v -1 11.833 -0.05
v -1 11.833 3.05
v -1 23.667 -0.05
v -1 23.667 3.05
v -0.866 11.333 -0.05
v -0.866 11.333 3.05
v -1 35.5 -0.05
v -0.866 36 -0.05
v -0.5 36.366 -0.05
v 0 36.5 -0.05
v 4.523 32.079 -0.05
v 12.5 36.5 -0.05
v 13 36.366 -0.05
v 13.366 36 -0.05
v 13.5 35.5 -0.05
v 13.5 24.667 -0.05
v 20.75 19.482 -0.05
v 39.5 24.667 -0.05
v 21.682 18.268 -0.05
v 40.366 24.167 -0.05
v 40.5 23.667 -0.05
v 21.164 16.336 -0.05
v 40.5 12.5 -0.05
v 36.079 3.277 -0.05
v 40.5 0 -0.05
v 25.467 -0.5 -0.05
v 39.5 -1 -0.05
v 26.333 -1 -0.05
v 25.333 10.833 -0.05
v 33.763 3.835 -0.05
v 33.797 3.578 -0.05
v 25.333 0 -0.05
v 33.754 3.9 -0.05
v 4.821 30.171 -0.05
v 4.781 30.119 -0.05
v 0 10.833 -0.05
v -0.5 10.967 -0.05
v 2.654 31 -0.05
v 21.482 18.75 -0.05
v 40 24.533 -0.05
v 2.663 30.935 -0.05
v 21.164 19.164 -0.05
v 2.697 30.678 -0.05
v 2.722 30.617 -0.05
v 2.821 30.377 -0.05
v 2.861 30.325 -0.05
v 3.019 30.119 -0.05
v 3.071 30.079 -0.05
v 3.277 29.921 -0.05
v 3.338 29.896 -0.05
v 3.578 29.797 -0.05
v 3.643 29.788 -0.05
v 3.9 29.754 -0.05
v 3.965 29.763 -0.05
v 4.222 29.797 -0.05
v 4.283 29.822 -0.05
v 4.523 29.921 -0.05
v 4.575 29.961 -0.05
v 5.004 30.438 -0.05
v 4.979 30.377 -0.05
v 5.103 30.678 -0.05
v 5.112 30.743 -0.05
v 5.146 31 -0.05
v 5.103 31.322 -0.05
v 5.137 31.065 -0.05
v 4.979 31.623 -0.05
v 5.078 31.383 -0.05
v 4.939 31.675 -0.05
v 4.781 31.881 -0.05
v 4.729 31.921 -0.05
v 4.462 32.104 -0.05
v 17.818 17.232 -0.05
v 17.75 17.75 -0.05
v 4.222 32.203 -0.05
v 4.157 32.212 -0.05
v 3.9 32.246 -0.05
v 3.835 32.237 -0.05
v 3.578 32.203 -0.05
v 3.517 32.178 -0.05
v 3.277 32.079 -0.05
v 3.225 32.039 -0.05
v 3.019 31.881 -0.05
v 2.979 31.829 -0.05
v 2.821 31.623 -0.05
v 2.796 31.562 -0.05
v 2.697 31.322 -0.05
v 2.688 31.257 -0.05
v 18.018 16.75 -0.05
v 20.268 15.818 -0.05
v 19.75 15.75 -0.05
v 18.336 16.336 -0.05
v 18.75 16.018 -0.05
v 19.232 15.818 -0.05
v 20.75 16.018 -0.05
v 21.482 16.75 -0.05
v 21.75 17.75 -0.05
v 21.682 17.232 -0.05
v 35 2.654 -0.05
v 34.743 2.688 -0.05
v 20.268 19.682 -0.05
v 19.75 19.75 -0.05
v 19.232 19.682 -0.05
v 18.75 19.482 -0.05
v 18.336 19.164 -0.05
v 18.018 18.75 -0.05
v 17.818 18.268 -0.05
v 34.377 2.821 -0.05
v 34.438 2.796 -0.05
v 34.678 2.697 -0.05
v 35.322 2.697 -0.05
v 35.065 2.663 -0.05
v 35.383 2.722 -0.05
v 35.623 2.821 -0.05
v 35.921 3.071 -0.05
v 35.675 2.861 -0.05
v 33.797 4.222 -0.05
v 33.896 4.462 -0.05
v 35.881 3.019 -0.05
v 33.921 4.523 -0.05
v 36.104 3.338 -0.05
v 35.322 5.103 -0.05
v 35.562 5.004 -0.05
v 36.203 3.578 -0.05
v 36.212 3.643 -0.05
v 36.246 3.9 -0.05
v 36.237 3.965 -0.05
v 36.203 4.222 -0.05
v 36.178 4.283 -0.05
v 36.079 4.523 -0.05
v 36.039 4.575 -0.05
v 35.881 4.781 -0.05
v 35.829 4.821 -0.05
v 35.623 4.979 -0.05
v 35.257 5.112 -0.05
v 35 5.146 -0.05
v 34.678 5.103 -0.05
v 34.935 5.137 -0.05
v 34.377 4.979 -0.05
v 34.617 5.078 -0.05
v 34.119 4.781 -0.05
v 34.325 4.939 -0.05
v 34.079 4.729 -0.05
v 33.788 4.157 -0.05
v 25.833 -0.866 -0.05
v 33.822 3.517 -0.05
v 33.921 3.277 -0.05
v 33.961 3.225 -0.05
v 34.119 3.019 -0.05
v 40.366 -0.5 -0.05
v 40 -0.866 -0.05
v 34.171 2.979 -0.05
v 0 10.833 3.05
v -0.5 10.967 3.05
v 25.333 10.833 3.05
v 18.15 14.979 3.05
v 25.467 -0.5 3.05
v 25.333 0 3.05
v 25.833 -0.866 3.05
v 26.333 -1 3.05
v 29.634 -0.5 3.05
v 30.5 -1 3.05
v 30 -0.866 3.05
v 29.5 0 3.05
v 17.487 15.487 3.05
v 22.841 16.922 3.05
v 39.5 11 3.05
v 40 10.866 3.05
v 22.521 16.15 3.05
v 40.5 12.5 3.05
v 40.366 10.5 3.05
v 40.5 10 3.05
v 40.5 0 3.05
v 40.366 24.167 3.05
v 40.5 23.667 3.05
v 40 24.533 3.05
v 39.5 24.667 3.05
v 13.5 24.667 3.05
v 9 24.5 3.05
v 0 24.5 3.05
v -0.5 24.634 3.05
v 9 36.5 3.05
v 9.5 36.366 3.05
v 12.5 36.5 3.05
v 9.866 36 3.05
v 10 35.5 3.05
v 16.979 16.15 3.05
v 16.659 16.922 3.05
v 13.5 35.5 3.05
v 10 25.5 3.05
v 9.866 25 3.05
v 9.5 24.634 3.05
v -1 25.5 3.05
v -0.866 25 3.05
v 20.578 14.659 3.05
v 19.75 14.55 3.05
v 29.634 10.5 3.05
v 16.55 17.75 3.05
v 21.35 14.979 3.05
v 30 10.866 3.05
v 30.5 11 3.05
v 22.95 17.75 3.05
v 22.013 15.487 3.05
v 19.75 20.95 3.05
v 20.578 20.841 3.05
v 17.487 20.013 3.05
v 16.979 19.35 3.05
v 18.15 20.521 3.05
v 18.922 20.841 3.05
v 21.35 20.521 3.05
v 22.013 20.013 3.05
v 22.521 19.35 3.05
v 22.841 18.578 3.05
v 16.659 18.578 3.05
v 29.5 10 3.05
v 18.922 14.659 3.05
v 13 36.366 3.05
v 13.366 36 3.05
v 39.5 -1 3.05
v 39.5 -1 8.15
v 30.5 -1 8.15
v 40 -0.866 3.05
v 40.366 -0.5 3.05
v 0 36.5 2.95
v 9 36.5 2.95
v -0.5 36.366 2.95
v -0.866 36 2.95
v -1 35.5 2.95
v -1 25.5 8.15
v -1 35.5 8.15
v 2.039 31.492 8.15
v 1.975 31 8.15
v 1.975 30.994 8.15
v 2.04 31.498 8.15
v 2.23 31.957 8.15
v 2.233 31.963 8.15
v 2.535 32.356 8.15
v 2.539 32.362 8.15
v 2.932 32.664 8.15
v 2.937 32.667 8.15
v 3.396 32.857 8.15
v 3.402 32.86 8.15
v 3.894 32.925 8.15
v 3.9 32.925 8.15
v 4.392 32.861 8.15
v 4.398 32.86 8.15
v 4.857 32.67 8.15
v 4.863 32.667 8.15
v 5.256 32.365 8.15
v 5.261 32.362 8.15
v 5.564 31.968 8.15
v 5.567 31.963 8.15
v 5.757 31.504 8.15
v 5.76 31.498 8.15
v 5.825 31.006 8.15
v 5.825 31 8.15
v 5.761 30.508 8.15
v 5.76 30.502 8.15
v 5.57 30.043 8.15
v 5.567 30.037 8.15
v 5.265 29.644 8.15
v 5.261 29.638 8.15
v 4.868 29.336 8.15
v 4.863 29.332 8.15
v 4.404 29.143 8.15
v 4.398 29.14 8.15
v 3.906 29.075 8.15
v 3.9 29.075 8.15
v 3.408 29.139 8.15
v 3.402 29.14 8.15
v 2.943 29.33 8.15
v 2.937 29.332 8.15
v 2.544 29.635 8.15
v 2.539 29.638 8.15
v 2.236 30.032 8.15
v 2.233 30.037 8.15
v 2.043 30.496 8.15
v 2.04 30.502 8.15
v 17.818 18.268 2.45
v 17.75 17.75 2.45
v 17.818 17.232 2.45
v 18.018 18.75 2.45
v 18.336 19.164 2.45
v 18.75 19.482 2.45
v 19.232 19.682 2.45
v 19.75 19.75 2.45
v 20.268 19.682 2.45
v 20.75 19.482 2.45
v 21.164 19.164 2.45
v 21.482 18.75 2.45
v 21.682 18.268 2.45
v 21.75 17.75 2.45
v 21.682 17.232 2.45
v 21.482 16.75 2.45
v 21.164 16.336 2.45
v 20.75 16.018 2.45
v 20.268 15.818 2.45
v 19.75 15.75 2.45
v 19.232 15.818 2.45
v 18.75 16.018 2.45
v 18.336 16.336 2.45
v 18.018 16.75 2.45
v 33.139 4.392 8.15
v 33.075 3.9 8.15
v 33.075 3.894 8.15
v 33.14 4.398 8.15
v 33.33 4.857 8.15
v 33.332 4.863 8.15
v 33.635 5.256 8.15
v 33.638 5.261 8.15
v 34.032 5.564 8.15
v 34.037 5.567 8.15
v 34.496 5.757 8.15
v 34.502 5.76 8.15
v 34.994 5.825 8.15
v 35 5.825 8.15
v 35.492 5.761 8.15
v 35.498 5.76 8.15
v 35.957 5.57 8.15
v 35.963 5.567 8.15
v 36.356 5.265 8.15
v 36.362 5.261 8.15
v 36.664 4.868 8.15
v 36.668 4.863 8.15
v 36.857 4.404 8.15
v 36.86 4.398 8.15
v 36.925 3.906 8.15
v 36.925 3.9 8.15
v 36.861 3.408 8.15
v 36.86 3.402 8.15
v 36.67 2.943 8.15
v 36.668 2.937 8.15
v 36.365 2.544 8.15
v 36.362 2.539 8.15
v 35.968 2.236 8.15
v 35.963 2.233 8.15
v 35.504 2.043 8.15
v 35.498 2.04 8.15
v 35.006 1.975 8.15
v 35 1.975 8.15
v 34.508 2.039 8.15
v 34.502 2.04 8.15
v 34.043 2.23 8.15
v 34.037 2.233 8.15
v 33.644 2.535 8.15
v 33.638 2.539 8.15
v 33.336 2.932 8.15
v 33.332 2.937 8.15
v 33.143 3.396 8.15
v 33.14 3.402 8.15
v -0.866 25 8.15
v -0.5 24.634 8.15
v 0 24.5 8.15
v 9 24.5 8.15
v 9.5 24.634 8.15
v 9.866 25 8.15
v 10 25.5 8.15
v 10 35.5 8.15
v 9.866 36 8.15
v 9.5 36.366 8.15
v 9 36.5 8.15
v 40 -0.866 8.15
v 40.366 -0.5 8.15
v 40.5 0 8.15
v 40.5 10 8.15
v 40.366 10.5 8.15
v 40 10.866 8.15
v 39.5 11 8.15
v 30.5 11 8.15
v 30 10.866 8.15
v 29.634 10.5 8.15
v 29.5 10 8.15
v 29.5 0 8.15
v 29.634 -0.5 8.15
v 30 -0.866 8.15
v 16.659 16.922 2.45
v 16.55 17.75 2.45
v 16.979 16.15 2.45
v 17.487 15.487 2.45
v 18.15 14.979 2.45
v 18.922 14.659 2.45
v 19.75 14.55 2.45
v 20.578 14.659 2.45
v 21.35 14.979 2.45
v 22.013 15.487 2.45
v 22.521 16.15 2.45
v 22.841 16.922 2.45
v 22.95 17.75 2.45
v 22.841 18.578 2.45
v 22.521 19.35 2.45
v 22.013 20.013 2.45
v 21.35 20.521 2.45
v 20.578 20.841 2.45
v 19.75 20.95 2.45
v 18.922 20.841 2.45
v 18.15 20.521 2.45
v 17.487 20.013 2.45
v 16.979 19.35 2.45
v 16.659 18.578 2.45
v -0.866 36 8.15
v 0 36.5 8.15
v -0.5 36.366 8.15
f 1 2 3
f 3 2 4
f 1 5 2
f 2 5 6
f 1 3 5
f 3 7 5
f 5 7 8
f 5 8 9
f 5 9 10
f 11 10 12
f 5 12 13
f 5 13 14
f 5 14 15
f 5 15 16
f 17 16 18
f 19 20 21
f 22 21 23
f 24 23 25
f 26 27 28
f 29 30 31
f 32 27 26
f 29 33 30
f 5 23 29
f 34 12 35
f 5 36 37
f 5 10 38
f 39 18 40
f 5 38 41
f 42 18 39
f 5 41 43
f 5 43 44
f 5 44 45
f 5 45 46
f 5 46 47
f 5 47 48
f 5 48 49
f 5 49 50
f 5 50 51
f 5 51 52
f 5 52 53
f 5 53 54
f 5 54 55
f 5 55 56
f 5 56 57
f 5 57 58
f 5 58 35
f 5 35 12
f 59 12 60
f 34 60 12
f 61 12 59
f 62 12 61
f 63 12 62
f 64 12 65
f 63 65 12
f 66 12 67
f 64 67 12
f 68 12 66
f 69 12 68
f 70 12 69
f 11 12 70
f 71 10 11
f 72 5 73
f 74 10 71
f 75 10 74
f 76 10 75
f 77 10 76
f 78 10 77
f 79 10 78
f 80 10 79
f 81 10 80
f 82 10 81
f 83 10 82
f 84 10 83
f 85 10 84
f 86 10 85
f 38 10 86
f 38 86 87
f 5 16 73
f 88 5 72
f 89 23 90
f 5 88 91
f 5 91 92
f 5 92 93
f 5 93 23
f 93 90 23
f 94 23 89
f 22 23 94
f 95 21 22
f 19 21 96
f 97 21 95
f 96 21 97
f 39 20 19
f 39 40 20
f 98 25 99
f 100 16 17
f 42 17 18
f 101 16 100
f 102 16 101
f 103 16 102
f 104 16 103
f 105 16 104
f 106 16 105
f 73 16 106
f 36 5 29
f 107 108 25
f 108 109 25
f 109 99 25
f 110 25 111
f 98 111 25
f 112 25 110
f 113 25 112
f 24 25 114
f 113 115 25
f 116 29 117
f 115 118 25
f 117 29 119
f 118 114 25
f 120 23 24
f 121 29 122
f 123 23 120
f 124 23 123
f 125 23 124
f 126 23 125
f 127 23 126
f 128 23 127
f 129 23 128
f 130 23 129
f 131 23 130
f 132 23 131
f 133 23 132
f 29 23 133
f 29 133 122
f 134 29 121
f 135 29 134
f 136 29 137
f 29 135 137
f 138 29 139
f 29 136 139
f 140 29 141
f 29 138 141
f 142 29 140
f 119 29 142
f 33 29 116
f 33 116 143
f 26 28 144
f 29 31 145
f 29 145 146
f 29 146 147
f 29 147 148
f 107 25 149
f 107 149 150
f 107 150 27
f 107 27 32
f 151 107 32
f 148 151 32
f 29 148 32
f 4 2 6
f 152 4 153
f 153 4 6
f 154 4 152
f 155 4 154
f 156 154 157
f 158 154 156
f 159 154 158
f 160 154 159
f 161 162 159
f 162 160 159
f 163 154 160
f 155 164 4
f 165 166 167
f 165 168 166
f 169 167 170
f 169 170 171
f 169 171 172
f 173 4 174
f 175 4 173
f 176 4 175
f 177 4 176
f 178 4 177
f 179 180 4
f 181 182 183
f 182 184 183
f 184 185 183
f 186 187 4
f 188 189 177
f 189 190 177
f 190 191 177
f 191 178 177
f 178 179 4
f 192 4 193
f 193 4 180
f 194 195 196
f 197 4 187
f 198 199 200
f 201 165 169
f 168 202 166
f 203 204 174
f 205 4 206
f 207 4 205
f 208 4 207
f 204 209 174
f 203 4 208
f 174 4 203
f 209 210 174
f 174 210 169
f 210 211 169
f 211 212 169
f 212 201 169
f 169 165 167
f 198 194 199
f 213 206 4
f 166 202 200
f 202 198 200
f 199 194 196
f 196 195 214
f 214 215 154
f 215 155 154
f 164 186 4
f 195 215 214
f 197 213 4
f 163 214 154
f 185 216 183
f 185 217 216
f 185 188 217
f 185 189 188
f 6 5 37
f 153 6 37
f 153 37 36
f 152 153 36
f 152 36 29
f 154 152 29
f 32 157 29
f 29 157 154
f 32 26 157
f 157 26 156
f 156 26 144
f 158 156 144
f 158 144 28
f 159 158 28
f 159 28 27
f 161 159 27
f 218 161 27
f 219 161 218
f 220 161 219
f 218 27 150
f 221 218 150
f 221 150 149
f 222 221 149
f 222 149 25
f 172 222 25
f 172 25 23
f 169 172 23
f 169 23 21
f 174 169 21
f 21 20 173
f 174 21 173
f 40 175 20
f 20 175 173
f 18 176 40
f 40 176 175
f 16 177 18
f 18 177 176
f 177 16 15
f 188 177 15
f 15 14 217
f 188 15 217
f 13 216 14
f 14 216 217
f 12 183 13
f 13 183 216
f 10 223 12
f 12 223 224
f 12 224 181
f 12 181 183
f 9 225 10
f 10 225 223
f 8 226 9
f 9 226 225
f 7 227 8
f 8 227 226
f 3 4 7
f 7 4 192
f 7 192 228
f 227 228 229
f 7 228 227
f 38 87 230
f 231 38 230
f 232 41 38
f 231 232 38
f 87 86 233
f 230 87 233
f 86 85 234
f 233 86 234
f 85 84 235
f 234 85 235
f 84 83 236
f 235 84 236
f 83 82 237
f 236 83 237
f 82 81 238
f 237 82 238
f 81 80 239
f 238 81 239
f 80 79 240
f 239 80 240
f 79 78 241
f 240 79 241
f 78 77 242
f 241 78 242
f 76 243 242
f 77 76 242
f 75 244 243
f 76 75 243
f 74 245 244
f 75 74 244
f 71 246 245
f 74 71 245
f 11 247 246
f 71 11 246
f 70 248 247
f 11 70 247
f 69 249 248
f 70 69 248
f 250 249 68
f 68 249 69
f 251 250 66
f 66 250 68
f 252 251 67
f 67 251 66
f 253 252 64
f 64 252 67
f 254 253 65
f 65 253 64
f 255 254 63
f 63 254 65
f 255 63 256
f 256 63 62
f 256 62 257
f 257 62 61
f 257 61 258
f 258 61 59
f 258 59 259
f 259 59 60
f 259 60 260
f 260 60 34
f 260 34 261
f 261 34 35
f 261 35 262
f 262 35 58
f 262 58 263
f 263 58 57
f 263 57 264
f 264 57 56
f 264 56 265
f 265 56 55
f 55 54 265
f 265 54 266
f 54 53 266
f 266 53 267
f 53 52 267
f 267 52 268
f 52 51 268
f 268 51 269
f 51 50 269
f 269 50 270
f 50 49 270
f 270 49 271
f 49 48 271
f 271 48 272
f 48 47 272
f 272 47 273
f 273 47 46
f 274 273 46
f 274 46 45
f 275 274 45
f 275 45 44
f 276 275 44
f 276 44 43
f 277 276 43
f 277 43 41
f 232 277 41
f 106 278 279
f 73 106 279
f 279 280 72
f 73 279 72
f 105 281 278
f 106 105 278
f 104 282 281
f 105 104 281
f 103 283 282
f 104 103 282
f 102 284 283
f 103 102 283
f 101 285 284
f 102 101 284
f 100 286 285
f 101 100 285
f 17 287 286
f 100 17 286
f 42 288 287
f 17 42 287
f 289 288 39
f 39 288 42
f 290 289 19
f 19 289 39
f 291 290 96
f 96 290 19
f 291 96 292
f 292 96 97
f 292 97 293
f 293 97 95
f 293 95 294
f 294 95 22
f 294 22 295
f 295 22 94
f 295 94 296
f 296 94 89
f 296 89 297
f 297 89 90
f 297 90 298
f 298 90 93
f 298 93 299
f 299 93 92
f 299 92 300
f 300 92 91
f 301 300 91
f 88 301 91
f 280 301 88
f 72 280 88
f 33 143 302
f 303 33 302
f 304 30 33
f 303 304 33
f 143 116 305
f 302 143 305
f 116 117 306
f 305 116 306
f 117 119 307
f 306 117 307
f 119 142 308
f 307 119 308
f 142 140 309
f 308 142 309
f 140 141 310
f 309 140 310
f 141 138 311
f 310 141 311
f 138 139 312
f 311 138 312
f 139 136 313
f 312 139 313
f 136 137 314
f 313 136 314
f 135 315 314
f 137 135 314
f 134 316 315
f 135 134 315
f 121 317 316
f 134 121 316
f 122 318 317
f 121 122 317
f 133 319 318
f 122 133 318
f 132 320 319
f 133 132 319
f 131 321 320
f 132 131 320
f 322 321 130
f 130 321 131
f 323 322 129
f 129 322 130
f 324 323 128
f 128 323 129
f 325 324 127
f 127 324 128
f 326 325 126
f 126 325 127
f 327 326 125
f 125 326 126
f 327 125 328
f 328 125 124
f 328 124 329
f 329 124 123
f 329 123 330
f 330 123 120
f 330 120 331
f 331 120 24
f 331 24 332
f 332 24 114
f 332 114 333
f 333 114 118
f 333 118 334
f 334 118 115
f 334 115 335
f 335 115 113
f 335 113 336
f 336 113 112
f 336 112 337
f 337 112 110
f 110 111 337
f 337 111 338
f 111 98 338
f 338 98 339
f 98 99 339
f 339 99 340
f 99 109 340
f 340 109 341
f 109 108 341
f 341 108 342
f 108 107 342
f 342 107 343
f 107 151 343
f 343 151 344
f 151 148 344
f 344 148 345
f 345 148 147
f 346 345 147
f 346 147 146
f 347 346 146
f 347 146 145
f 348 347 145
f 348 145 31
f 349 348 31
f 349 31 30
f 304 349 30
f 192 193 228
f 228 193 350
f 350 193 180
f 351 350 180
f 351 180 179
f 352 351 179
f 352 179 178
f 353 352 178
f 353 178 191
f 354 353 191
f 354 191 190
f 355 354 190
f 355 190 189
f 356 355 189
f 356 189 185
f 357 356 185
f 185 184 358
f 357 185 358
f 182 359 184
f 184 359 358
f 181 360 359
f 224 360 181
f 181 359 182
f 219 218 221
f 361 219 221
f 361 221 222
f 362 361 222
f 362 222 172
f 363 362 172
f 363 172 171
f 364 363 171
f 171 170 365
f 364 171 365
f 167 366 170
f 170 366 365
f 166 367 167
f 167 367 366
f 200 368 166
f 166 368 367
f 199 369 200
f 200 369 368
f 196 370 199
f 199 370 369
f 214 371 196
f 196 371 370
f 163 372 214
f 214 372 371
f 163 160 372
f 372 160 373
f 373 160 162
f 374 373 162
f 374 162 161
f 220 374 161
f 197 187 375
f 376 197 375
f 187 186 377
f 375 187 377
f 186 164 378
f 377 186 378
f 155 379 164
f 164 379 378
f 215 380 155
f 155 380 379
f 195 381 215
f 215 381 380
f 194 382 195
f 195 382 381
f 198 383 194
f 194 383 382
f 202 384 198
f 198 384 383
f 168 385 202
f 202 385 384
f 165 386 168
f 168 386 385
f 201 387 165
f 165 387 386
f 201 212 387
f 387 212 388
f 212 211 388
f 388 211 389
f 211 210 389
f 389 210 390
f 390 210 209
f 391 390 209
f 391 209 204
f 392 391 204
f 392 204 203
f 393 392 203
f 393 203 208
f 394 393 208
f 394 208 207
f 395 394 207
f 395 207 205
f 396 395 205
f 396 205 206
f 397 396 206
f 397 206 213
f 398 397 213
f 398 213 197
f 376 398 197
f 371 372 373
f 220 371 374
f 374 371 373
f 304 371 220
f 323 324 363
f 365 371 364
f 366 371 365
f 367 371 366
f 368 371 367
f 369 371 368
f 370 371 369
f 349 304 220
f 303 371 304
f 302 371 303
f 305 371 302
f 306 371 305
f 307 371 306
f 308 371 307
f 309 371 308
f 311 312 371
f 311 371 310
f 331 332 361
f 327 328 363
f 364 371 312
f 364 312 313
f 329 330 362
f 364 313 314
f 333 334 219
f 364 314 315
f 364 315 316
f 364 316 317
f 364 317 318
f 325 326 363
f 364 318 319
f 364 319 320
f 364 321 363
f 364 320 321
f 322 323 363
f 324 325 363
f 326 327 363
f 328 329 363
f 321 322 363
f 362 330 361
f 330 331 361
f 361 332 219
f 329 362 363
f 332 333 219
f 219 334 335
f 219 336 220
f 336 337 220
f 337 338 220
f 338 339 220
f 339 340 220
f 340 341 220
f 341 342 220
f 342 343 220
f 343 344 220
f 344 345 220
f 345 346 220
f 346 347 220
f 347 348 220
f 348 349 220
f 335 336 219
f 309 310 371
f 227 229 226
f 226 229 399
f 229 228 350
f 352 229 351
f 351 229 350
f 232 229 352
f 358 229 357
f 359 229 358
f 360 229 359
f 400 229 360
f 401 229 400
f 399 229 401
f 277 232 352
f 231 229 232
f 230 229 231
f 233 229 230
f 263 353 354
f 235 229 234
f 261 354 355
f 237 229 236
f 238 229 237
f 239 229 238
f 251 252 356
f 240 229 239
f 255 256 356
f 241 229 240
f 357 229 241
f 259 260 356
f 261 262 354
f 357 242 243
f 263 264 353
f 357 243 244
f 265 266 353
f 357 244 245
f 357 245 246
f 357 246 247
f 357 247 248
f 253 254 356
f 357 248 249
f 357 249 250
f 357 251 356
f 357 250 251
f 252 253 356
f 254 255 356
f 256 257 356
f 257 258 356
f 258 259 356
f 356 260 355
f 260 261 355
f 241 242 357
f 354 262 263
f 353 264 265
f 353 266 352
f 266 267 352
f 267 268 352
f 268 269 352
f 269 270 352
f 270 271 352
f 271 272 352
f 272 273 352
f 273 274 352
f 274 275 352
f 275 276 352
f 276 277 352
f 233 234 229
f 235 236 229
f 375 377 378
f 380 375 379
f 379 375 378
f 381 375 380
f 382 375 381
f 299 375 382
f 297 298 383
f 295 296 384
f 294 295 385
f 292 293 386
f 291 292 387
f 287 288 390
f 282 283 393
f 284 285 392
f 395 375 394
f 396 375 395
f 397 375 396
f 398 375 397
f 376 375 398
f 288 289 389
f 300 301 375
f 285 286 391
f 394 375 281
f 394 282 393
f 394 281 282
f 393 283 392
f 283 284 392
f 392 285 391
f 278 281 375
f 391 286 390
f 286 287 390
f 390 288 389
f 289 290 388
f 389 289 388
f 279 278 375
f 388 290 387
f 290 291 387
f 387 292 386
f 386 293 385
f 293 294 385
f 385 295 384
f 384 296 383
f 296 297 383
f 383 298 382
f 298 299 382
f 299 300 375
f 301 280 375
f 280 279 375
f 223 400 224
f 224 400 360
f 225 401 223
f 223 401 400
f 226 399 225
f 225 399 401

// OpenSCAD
width = 39.5;	// actual is 1.550"
height = 35.5;	// actual is 1"
depth = 3;
wall_thickness = 5;
pcb_z_offset = 5;

term_mnt_5mm_2hole(width, height, depth, wall_thickness);

module term_mnt_5mm_2hole(w, h, d, wt) {
difference() {
  union() {
	// pcb mount pads
    minkowski() {
      union() {
    translate([h - (10 / 2), 0, d]) cube([9, 10, pcb_z_offset + 0.1]);
    translate([0, h - 10, d]) cube([9, 10, pcb_z_offset + 0.1]);
    }
    translate([0, 0, 0]) cylinder(r = 1, h = 0.1, center = true, $fn = 12);
  }
	// base support
    minkowski() { 
      union() {
        translate([0, 2 * h / 6, 0]) cube([w, h / 3, d]);
        translate([0, 2 * h / 3, 0]) cube([2.5 * wt, h / 3, d]);
        translate([2 * w / 3, 0, 0]) cube([w / 3, 2.5 * wt, d]);
    }
    translate([0, 0, 0]) cylinder(r = 1, h = 0.1, center = true, $fn = 12);
  }
}
    // M4 mount screw hole
    translate([w / 2, h / 2, 0]) cylinder(r = 2, h = d * 2 + 0.1, center = true, $fn = 24);
    // M4 mount countersink
    translate([w / 2, h / 2, 4]) cylinder(r = 3.2, h = d + 0.1, center = true, $fn = 24);
    // pcb mount hls
    translate([w - 4.5, 3.9, 0]) cylinder(r1 = 0.5, r2 = 2, h = d * 4 + pcb_z_offset + 1 + 0.1, center = true, $fn = 24);
    translate([3.9, h - 4.5, 0]) cylinder(r1 = 0.5, r2 = 2, h = d * 4+ pcb_z_offset + 1 + 0.1, center = true, $fn = 24);
}
}
